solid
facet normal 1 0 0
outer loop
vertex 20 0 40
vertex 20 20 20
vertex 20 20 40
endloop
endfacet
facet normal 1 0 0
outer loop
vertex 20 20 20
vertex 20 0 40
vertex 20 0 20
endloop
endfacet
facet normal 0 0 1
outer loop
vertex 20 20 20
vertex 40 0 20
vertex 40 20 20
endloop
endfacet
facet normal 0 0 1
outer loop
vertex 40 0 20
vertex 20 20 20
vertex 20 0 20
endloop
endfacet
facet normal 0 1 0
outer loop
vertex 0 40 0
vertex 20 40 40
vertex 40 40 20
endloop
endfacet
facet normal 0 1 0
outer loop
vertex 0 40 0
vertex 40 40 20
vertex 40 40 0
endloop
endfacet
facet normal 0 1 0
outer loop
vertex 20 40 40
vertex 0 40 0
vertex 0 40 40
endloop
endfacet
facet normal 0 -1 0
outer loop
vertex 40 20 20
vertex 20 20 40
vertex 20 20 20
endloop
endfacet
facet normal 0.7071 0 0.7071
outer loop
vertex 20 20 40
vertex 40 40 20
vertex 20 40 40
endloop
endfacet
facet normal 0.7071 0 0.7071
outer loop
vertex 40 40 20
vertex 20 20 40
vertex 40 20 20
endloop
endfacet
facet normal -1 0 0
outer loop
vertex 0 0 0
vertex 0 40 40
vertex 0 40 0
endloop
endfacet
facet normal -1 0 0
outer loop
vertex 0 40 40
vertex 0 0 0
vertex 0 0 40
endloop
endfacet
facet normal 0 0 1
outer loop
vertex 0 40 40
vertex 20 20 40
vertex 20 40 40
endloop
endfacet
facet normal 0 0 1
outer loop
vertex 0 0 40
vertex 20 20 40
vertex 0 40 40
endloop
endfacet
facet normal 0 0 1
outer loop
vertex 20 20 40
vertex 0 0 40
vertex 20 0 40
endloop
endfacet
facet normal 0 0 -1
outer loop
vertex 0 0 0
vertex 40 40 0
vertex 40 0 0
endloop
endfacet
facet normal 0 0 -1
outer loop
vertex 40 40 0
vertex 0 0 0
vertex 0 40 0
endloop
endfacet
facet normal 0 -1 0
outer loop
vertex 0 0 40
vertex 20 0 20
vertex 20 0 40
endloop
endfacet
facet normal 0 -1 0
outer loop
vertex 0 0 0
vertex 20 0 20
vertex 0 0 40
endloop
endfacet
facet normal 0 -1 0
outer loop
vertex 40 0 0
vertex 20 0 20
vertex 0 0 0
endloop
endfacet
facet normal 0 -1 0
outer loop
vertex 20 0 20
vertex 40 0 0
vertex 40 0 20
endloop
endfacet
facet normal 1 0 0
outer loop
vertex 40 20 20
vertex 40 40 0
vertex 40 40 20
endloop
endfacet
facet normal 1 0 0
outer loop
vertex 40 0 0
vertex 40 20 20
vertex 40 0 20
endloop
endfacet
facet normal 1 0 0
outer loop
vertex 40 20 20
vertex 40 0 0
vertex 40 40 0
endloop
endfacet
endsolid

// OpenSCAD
union(){
cube([20, 40, 40], center=false);
cube([40, 40, 20], center=false);
translate([20, 20, 40]){
mirror([0,0,1]){
difference(){
cube([20, 20, 20], center=false);
rotate([0, 45, 0]){
cube([40, 40, 40], center=false);
}
}
}
}
}
